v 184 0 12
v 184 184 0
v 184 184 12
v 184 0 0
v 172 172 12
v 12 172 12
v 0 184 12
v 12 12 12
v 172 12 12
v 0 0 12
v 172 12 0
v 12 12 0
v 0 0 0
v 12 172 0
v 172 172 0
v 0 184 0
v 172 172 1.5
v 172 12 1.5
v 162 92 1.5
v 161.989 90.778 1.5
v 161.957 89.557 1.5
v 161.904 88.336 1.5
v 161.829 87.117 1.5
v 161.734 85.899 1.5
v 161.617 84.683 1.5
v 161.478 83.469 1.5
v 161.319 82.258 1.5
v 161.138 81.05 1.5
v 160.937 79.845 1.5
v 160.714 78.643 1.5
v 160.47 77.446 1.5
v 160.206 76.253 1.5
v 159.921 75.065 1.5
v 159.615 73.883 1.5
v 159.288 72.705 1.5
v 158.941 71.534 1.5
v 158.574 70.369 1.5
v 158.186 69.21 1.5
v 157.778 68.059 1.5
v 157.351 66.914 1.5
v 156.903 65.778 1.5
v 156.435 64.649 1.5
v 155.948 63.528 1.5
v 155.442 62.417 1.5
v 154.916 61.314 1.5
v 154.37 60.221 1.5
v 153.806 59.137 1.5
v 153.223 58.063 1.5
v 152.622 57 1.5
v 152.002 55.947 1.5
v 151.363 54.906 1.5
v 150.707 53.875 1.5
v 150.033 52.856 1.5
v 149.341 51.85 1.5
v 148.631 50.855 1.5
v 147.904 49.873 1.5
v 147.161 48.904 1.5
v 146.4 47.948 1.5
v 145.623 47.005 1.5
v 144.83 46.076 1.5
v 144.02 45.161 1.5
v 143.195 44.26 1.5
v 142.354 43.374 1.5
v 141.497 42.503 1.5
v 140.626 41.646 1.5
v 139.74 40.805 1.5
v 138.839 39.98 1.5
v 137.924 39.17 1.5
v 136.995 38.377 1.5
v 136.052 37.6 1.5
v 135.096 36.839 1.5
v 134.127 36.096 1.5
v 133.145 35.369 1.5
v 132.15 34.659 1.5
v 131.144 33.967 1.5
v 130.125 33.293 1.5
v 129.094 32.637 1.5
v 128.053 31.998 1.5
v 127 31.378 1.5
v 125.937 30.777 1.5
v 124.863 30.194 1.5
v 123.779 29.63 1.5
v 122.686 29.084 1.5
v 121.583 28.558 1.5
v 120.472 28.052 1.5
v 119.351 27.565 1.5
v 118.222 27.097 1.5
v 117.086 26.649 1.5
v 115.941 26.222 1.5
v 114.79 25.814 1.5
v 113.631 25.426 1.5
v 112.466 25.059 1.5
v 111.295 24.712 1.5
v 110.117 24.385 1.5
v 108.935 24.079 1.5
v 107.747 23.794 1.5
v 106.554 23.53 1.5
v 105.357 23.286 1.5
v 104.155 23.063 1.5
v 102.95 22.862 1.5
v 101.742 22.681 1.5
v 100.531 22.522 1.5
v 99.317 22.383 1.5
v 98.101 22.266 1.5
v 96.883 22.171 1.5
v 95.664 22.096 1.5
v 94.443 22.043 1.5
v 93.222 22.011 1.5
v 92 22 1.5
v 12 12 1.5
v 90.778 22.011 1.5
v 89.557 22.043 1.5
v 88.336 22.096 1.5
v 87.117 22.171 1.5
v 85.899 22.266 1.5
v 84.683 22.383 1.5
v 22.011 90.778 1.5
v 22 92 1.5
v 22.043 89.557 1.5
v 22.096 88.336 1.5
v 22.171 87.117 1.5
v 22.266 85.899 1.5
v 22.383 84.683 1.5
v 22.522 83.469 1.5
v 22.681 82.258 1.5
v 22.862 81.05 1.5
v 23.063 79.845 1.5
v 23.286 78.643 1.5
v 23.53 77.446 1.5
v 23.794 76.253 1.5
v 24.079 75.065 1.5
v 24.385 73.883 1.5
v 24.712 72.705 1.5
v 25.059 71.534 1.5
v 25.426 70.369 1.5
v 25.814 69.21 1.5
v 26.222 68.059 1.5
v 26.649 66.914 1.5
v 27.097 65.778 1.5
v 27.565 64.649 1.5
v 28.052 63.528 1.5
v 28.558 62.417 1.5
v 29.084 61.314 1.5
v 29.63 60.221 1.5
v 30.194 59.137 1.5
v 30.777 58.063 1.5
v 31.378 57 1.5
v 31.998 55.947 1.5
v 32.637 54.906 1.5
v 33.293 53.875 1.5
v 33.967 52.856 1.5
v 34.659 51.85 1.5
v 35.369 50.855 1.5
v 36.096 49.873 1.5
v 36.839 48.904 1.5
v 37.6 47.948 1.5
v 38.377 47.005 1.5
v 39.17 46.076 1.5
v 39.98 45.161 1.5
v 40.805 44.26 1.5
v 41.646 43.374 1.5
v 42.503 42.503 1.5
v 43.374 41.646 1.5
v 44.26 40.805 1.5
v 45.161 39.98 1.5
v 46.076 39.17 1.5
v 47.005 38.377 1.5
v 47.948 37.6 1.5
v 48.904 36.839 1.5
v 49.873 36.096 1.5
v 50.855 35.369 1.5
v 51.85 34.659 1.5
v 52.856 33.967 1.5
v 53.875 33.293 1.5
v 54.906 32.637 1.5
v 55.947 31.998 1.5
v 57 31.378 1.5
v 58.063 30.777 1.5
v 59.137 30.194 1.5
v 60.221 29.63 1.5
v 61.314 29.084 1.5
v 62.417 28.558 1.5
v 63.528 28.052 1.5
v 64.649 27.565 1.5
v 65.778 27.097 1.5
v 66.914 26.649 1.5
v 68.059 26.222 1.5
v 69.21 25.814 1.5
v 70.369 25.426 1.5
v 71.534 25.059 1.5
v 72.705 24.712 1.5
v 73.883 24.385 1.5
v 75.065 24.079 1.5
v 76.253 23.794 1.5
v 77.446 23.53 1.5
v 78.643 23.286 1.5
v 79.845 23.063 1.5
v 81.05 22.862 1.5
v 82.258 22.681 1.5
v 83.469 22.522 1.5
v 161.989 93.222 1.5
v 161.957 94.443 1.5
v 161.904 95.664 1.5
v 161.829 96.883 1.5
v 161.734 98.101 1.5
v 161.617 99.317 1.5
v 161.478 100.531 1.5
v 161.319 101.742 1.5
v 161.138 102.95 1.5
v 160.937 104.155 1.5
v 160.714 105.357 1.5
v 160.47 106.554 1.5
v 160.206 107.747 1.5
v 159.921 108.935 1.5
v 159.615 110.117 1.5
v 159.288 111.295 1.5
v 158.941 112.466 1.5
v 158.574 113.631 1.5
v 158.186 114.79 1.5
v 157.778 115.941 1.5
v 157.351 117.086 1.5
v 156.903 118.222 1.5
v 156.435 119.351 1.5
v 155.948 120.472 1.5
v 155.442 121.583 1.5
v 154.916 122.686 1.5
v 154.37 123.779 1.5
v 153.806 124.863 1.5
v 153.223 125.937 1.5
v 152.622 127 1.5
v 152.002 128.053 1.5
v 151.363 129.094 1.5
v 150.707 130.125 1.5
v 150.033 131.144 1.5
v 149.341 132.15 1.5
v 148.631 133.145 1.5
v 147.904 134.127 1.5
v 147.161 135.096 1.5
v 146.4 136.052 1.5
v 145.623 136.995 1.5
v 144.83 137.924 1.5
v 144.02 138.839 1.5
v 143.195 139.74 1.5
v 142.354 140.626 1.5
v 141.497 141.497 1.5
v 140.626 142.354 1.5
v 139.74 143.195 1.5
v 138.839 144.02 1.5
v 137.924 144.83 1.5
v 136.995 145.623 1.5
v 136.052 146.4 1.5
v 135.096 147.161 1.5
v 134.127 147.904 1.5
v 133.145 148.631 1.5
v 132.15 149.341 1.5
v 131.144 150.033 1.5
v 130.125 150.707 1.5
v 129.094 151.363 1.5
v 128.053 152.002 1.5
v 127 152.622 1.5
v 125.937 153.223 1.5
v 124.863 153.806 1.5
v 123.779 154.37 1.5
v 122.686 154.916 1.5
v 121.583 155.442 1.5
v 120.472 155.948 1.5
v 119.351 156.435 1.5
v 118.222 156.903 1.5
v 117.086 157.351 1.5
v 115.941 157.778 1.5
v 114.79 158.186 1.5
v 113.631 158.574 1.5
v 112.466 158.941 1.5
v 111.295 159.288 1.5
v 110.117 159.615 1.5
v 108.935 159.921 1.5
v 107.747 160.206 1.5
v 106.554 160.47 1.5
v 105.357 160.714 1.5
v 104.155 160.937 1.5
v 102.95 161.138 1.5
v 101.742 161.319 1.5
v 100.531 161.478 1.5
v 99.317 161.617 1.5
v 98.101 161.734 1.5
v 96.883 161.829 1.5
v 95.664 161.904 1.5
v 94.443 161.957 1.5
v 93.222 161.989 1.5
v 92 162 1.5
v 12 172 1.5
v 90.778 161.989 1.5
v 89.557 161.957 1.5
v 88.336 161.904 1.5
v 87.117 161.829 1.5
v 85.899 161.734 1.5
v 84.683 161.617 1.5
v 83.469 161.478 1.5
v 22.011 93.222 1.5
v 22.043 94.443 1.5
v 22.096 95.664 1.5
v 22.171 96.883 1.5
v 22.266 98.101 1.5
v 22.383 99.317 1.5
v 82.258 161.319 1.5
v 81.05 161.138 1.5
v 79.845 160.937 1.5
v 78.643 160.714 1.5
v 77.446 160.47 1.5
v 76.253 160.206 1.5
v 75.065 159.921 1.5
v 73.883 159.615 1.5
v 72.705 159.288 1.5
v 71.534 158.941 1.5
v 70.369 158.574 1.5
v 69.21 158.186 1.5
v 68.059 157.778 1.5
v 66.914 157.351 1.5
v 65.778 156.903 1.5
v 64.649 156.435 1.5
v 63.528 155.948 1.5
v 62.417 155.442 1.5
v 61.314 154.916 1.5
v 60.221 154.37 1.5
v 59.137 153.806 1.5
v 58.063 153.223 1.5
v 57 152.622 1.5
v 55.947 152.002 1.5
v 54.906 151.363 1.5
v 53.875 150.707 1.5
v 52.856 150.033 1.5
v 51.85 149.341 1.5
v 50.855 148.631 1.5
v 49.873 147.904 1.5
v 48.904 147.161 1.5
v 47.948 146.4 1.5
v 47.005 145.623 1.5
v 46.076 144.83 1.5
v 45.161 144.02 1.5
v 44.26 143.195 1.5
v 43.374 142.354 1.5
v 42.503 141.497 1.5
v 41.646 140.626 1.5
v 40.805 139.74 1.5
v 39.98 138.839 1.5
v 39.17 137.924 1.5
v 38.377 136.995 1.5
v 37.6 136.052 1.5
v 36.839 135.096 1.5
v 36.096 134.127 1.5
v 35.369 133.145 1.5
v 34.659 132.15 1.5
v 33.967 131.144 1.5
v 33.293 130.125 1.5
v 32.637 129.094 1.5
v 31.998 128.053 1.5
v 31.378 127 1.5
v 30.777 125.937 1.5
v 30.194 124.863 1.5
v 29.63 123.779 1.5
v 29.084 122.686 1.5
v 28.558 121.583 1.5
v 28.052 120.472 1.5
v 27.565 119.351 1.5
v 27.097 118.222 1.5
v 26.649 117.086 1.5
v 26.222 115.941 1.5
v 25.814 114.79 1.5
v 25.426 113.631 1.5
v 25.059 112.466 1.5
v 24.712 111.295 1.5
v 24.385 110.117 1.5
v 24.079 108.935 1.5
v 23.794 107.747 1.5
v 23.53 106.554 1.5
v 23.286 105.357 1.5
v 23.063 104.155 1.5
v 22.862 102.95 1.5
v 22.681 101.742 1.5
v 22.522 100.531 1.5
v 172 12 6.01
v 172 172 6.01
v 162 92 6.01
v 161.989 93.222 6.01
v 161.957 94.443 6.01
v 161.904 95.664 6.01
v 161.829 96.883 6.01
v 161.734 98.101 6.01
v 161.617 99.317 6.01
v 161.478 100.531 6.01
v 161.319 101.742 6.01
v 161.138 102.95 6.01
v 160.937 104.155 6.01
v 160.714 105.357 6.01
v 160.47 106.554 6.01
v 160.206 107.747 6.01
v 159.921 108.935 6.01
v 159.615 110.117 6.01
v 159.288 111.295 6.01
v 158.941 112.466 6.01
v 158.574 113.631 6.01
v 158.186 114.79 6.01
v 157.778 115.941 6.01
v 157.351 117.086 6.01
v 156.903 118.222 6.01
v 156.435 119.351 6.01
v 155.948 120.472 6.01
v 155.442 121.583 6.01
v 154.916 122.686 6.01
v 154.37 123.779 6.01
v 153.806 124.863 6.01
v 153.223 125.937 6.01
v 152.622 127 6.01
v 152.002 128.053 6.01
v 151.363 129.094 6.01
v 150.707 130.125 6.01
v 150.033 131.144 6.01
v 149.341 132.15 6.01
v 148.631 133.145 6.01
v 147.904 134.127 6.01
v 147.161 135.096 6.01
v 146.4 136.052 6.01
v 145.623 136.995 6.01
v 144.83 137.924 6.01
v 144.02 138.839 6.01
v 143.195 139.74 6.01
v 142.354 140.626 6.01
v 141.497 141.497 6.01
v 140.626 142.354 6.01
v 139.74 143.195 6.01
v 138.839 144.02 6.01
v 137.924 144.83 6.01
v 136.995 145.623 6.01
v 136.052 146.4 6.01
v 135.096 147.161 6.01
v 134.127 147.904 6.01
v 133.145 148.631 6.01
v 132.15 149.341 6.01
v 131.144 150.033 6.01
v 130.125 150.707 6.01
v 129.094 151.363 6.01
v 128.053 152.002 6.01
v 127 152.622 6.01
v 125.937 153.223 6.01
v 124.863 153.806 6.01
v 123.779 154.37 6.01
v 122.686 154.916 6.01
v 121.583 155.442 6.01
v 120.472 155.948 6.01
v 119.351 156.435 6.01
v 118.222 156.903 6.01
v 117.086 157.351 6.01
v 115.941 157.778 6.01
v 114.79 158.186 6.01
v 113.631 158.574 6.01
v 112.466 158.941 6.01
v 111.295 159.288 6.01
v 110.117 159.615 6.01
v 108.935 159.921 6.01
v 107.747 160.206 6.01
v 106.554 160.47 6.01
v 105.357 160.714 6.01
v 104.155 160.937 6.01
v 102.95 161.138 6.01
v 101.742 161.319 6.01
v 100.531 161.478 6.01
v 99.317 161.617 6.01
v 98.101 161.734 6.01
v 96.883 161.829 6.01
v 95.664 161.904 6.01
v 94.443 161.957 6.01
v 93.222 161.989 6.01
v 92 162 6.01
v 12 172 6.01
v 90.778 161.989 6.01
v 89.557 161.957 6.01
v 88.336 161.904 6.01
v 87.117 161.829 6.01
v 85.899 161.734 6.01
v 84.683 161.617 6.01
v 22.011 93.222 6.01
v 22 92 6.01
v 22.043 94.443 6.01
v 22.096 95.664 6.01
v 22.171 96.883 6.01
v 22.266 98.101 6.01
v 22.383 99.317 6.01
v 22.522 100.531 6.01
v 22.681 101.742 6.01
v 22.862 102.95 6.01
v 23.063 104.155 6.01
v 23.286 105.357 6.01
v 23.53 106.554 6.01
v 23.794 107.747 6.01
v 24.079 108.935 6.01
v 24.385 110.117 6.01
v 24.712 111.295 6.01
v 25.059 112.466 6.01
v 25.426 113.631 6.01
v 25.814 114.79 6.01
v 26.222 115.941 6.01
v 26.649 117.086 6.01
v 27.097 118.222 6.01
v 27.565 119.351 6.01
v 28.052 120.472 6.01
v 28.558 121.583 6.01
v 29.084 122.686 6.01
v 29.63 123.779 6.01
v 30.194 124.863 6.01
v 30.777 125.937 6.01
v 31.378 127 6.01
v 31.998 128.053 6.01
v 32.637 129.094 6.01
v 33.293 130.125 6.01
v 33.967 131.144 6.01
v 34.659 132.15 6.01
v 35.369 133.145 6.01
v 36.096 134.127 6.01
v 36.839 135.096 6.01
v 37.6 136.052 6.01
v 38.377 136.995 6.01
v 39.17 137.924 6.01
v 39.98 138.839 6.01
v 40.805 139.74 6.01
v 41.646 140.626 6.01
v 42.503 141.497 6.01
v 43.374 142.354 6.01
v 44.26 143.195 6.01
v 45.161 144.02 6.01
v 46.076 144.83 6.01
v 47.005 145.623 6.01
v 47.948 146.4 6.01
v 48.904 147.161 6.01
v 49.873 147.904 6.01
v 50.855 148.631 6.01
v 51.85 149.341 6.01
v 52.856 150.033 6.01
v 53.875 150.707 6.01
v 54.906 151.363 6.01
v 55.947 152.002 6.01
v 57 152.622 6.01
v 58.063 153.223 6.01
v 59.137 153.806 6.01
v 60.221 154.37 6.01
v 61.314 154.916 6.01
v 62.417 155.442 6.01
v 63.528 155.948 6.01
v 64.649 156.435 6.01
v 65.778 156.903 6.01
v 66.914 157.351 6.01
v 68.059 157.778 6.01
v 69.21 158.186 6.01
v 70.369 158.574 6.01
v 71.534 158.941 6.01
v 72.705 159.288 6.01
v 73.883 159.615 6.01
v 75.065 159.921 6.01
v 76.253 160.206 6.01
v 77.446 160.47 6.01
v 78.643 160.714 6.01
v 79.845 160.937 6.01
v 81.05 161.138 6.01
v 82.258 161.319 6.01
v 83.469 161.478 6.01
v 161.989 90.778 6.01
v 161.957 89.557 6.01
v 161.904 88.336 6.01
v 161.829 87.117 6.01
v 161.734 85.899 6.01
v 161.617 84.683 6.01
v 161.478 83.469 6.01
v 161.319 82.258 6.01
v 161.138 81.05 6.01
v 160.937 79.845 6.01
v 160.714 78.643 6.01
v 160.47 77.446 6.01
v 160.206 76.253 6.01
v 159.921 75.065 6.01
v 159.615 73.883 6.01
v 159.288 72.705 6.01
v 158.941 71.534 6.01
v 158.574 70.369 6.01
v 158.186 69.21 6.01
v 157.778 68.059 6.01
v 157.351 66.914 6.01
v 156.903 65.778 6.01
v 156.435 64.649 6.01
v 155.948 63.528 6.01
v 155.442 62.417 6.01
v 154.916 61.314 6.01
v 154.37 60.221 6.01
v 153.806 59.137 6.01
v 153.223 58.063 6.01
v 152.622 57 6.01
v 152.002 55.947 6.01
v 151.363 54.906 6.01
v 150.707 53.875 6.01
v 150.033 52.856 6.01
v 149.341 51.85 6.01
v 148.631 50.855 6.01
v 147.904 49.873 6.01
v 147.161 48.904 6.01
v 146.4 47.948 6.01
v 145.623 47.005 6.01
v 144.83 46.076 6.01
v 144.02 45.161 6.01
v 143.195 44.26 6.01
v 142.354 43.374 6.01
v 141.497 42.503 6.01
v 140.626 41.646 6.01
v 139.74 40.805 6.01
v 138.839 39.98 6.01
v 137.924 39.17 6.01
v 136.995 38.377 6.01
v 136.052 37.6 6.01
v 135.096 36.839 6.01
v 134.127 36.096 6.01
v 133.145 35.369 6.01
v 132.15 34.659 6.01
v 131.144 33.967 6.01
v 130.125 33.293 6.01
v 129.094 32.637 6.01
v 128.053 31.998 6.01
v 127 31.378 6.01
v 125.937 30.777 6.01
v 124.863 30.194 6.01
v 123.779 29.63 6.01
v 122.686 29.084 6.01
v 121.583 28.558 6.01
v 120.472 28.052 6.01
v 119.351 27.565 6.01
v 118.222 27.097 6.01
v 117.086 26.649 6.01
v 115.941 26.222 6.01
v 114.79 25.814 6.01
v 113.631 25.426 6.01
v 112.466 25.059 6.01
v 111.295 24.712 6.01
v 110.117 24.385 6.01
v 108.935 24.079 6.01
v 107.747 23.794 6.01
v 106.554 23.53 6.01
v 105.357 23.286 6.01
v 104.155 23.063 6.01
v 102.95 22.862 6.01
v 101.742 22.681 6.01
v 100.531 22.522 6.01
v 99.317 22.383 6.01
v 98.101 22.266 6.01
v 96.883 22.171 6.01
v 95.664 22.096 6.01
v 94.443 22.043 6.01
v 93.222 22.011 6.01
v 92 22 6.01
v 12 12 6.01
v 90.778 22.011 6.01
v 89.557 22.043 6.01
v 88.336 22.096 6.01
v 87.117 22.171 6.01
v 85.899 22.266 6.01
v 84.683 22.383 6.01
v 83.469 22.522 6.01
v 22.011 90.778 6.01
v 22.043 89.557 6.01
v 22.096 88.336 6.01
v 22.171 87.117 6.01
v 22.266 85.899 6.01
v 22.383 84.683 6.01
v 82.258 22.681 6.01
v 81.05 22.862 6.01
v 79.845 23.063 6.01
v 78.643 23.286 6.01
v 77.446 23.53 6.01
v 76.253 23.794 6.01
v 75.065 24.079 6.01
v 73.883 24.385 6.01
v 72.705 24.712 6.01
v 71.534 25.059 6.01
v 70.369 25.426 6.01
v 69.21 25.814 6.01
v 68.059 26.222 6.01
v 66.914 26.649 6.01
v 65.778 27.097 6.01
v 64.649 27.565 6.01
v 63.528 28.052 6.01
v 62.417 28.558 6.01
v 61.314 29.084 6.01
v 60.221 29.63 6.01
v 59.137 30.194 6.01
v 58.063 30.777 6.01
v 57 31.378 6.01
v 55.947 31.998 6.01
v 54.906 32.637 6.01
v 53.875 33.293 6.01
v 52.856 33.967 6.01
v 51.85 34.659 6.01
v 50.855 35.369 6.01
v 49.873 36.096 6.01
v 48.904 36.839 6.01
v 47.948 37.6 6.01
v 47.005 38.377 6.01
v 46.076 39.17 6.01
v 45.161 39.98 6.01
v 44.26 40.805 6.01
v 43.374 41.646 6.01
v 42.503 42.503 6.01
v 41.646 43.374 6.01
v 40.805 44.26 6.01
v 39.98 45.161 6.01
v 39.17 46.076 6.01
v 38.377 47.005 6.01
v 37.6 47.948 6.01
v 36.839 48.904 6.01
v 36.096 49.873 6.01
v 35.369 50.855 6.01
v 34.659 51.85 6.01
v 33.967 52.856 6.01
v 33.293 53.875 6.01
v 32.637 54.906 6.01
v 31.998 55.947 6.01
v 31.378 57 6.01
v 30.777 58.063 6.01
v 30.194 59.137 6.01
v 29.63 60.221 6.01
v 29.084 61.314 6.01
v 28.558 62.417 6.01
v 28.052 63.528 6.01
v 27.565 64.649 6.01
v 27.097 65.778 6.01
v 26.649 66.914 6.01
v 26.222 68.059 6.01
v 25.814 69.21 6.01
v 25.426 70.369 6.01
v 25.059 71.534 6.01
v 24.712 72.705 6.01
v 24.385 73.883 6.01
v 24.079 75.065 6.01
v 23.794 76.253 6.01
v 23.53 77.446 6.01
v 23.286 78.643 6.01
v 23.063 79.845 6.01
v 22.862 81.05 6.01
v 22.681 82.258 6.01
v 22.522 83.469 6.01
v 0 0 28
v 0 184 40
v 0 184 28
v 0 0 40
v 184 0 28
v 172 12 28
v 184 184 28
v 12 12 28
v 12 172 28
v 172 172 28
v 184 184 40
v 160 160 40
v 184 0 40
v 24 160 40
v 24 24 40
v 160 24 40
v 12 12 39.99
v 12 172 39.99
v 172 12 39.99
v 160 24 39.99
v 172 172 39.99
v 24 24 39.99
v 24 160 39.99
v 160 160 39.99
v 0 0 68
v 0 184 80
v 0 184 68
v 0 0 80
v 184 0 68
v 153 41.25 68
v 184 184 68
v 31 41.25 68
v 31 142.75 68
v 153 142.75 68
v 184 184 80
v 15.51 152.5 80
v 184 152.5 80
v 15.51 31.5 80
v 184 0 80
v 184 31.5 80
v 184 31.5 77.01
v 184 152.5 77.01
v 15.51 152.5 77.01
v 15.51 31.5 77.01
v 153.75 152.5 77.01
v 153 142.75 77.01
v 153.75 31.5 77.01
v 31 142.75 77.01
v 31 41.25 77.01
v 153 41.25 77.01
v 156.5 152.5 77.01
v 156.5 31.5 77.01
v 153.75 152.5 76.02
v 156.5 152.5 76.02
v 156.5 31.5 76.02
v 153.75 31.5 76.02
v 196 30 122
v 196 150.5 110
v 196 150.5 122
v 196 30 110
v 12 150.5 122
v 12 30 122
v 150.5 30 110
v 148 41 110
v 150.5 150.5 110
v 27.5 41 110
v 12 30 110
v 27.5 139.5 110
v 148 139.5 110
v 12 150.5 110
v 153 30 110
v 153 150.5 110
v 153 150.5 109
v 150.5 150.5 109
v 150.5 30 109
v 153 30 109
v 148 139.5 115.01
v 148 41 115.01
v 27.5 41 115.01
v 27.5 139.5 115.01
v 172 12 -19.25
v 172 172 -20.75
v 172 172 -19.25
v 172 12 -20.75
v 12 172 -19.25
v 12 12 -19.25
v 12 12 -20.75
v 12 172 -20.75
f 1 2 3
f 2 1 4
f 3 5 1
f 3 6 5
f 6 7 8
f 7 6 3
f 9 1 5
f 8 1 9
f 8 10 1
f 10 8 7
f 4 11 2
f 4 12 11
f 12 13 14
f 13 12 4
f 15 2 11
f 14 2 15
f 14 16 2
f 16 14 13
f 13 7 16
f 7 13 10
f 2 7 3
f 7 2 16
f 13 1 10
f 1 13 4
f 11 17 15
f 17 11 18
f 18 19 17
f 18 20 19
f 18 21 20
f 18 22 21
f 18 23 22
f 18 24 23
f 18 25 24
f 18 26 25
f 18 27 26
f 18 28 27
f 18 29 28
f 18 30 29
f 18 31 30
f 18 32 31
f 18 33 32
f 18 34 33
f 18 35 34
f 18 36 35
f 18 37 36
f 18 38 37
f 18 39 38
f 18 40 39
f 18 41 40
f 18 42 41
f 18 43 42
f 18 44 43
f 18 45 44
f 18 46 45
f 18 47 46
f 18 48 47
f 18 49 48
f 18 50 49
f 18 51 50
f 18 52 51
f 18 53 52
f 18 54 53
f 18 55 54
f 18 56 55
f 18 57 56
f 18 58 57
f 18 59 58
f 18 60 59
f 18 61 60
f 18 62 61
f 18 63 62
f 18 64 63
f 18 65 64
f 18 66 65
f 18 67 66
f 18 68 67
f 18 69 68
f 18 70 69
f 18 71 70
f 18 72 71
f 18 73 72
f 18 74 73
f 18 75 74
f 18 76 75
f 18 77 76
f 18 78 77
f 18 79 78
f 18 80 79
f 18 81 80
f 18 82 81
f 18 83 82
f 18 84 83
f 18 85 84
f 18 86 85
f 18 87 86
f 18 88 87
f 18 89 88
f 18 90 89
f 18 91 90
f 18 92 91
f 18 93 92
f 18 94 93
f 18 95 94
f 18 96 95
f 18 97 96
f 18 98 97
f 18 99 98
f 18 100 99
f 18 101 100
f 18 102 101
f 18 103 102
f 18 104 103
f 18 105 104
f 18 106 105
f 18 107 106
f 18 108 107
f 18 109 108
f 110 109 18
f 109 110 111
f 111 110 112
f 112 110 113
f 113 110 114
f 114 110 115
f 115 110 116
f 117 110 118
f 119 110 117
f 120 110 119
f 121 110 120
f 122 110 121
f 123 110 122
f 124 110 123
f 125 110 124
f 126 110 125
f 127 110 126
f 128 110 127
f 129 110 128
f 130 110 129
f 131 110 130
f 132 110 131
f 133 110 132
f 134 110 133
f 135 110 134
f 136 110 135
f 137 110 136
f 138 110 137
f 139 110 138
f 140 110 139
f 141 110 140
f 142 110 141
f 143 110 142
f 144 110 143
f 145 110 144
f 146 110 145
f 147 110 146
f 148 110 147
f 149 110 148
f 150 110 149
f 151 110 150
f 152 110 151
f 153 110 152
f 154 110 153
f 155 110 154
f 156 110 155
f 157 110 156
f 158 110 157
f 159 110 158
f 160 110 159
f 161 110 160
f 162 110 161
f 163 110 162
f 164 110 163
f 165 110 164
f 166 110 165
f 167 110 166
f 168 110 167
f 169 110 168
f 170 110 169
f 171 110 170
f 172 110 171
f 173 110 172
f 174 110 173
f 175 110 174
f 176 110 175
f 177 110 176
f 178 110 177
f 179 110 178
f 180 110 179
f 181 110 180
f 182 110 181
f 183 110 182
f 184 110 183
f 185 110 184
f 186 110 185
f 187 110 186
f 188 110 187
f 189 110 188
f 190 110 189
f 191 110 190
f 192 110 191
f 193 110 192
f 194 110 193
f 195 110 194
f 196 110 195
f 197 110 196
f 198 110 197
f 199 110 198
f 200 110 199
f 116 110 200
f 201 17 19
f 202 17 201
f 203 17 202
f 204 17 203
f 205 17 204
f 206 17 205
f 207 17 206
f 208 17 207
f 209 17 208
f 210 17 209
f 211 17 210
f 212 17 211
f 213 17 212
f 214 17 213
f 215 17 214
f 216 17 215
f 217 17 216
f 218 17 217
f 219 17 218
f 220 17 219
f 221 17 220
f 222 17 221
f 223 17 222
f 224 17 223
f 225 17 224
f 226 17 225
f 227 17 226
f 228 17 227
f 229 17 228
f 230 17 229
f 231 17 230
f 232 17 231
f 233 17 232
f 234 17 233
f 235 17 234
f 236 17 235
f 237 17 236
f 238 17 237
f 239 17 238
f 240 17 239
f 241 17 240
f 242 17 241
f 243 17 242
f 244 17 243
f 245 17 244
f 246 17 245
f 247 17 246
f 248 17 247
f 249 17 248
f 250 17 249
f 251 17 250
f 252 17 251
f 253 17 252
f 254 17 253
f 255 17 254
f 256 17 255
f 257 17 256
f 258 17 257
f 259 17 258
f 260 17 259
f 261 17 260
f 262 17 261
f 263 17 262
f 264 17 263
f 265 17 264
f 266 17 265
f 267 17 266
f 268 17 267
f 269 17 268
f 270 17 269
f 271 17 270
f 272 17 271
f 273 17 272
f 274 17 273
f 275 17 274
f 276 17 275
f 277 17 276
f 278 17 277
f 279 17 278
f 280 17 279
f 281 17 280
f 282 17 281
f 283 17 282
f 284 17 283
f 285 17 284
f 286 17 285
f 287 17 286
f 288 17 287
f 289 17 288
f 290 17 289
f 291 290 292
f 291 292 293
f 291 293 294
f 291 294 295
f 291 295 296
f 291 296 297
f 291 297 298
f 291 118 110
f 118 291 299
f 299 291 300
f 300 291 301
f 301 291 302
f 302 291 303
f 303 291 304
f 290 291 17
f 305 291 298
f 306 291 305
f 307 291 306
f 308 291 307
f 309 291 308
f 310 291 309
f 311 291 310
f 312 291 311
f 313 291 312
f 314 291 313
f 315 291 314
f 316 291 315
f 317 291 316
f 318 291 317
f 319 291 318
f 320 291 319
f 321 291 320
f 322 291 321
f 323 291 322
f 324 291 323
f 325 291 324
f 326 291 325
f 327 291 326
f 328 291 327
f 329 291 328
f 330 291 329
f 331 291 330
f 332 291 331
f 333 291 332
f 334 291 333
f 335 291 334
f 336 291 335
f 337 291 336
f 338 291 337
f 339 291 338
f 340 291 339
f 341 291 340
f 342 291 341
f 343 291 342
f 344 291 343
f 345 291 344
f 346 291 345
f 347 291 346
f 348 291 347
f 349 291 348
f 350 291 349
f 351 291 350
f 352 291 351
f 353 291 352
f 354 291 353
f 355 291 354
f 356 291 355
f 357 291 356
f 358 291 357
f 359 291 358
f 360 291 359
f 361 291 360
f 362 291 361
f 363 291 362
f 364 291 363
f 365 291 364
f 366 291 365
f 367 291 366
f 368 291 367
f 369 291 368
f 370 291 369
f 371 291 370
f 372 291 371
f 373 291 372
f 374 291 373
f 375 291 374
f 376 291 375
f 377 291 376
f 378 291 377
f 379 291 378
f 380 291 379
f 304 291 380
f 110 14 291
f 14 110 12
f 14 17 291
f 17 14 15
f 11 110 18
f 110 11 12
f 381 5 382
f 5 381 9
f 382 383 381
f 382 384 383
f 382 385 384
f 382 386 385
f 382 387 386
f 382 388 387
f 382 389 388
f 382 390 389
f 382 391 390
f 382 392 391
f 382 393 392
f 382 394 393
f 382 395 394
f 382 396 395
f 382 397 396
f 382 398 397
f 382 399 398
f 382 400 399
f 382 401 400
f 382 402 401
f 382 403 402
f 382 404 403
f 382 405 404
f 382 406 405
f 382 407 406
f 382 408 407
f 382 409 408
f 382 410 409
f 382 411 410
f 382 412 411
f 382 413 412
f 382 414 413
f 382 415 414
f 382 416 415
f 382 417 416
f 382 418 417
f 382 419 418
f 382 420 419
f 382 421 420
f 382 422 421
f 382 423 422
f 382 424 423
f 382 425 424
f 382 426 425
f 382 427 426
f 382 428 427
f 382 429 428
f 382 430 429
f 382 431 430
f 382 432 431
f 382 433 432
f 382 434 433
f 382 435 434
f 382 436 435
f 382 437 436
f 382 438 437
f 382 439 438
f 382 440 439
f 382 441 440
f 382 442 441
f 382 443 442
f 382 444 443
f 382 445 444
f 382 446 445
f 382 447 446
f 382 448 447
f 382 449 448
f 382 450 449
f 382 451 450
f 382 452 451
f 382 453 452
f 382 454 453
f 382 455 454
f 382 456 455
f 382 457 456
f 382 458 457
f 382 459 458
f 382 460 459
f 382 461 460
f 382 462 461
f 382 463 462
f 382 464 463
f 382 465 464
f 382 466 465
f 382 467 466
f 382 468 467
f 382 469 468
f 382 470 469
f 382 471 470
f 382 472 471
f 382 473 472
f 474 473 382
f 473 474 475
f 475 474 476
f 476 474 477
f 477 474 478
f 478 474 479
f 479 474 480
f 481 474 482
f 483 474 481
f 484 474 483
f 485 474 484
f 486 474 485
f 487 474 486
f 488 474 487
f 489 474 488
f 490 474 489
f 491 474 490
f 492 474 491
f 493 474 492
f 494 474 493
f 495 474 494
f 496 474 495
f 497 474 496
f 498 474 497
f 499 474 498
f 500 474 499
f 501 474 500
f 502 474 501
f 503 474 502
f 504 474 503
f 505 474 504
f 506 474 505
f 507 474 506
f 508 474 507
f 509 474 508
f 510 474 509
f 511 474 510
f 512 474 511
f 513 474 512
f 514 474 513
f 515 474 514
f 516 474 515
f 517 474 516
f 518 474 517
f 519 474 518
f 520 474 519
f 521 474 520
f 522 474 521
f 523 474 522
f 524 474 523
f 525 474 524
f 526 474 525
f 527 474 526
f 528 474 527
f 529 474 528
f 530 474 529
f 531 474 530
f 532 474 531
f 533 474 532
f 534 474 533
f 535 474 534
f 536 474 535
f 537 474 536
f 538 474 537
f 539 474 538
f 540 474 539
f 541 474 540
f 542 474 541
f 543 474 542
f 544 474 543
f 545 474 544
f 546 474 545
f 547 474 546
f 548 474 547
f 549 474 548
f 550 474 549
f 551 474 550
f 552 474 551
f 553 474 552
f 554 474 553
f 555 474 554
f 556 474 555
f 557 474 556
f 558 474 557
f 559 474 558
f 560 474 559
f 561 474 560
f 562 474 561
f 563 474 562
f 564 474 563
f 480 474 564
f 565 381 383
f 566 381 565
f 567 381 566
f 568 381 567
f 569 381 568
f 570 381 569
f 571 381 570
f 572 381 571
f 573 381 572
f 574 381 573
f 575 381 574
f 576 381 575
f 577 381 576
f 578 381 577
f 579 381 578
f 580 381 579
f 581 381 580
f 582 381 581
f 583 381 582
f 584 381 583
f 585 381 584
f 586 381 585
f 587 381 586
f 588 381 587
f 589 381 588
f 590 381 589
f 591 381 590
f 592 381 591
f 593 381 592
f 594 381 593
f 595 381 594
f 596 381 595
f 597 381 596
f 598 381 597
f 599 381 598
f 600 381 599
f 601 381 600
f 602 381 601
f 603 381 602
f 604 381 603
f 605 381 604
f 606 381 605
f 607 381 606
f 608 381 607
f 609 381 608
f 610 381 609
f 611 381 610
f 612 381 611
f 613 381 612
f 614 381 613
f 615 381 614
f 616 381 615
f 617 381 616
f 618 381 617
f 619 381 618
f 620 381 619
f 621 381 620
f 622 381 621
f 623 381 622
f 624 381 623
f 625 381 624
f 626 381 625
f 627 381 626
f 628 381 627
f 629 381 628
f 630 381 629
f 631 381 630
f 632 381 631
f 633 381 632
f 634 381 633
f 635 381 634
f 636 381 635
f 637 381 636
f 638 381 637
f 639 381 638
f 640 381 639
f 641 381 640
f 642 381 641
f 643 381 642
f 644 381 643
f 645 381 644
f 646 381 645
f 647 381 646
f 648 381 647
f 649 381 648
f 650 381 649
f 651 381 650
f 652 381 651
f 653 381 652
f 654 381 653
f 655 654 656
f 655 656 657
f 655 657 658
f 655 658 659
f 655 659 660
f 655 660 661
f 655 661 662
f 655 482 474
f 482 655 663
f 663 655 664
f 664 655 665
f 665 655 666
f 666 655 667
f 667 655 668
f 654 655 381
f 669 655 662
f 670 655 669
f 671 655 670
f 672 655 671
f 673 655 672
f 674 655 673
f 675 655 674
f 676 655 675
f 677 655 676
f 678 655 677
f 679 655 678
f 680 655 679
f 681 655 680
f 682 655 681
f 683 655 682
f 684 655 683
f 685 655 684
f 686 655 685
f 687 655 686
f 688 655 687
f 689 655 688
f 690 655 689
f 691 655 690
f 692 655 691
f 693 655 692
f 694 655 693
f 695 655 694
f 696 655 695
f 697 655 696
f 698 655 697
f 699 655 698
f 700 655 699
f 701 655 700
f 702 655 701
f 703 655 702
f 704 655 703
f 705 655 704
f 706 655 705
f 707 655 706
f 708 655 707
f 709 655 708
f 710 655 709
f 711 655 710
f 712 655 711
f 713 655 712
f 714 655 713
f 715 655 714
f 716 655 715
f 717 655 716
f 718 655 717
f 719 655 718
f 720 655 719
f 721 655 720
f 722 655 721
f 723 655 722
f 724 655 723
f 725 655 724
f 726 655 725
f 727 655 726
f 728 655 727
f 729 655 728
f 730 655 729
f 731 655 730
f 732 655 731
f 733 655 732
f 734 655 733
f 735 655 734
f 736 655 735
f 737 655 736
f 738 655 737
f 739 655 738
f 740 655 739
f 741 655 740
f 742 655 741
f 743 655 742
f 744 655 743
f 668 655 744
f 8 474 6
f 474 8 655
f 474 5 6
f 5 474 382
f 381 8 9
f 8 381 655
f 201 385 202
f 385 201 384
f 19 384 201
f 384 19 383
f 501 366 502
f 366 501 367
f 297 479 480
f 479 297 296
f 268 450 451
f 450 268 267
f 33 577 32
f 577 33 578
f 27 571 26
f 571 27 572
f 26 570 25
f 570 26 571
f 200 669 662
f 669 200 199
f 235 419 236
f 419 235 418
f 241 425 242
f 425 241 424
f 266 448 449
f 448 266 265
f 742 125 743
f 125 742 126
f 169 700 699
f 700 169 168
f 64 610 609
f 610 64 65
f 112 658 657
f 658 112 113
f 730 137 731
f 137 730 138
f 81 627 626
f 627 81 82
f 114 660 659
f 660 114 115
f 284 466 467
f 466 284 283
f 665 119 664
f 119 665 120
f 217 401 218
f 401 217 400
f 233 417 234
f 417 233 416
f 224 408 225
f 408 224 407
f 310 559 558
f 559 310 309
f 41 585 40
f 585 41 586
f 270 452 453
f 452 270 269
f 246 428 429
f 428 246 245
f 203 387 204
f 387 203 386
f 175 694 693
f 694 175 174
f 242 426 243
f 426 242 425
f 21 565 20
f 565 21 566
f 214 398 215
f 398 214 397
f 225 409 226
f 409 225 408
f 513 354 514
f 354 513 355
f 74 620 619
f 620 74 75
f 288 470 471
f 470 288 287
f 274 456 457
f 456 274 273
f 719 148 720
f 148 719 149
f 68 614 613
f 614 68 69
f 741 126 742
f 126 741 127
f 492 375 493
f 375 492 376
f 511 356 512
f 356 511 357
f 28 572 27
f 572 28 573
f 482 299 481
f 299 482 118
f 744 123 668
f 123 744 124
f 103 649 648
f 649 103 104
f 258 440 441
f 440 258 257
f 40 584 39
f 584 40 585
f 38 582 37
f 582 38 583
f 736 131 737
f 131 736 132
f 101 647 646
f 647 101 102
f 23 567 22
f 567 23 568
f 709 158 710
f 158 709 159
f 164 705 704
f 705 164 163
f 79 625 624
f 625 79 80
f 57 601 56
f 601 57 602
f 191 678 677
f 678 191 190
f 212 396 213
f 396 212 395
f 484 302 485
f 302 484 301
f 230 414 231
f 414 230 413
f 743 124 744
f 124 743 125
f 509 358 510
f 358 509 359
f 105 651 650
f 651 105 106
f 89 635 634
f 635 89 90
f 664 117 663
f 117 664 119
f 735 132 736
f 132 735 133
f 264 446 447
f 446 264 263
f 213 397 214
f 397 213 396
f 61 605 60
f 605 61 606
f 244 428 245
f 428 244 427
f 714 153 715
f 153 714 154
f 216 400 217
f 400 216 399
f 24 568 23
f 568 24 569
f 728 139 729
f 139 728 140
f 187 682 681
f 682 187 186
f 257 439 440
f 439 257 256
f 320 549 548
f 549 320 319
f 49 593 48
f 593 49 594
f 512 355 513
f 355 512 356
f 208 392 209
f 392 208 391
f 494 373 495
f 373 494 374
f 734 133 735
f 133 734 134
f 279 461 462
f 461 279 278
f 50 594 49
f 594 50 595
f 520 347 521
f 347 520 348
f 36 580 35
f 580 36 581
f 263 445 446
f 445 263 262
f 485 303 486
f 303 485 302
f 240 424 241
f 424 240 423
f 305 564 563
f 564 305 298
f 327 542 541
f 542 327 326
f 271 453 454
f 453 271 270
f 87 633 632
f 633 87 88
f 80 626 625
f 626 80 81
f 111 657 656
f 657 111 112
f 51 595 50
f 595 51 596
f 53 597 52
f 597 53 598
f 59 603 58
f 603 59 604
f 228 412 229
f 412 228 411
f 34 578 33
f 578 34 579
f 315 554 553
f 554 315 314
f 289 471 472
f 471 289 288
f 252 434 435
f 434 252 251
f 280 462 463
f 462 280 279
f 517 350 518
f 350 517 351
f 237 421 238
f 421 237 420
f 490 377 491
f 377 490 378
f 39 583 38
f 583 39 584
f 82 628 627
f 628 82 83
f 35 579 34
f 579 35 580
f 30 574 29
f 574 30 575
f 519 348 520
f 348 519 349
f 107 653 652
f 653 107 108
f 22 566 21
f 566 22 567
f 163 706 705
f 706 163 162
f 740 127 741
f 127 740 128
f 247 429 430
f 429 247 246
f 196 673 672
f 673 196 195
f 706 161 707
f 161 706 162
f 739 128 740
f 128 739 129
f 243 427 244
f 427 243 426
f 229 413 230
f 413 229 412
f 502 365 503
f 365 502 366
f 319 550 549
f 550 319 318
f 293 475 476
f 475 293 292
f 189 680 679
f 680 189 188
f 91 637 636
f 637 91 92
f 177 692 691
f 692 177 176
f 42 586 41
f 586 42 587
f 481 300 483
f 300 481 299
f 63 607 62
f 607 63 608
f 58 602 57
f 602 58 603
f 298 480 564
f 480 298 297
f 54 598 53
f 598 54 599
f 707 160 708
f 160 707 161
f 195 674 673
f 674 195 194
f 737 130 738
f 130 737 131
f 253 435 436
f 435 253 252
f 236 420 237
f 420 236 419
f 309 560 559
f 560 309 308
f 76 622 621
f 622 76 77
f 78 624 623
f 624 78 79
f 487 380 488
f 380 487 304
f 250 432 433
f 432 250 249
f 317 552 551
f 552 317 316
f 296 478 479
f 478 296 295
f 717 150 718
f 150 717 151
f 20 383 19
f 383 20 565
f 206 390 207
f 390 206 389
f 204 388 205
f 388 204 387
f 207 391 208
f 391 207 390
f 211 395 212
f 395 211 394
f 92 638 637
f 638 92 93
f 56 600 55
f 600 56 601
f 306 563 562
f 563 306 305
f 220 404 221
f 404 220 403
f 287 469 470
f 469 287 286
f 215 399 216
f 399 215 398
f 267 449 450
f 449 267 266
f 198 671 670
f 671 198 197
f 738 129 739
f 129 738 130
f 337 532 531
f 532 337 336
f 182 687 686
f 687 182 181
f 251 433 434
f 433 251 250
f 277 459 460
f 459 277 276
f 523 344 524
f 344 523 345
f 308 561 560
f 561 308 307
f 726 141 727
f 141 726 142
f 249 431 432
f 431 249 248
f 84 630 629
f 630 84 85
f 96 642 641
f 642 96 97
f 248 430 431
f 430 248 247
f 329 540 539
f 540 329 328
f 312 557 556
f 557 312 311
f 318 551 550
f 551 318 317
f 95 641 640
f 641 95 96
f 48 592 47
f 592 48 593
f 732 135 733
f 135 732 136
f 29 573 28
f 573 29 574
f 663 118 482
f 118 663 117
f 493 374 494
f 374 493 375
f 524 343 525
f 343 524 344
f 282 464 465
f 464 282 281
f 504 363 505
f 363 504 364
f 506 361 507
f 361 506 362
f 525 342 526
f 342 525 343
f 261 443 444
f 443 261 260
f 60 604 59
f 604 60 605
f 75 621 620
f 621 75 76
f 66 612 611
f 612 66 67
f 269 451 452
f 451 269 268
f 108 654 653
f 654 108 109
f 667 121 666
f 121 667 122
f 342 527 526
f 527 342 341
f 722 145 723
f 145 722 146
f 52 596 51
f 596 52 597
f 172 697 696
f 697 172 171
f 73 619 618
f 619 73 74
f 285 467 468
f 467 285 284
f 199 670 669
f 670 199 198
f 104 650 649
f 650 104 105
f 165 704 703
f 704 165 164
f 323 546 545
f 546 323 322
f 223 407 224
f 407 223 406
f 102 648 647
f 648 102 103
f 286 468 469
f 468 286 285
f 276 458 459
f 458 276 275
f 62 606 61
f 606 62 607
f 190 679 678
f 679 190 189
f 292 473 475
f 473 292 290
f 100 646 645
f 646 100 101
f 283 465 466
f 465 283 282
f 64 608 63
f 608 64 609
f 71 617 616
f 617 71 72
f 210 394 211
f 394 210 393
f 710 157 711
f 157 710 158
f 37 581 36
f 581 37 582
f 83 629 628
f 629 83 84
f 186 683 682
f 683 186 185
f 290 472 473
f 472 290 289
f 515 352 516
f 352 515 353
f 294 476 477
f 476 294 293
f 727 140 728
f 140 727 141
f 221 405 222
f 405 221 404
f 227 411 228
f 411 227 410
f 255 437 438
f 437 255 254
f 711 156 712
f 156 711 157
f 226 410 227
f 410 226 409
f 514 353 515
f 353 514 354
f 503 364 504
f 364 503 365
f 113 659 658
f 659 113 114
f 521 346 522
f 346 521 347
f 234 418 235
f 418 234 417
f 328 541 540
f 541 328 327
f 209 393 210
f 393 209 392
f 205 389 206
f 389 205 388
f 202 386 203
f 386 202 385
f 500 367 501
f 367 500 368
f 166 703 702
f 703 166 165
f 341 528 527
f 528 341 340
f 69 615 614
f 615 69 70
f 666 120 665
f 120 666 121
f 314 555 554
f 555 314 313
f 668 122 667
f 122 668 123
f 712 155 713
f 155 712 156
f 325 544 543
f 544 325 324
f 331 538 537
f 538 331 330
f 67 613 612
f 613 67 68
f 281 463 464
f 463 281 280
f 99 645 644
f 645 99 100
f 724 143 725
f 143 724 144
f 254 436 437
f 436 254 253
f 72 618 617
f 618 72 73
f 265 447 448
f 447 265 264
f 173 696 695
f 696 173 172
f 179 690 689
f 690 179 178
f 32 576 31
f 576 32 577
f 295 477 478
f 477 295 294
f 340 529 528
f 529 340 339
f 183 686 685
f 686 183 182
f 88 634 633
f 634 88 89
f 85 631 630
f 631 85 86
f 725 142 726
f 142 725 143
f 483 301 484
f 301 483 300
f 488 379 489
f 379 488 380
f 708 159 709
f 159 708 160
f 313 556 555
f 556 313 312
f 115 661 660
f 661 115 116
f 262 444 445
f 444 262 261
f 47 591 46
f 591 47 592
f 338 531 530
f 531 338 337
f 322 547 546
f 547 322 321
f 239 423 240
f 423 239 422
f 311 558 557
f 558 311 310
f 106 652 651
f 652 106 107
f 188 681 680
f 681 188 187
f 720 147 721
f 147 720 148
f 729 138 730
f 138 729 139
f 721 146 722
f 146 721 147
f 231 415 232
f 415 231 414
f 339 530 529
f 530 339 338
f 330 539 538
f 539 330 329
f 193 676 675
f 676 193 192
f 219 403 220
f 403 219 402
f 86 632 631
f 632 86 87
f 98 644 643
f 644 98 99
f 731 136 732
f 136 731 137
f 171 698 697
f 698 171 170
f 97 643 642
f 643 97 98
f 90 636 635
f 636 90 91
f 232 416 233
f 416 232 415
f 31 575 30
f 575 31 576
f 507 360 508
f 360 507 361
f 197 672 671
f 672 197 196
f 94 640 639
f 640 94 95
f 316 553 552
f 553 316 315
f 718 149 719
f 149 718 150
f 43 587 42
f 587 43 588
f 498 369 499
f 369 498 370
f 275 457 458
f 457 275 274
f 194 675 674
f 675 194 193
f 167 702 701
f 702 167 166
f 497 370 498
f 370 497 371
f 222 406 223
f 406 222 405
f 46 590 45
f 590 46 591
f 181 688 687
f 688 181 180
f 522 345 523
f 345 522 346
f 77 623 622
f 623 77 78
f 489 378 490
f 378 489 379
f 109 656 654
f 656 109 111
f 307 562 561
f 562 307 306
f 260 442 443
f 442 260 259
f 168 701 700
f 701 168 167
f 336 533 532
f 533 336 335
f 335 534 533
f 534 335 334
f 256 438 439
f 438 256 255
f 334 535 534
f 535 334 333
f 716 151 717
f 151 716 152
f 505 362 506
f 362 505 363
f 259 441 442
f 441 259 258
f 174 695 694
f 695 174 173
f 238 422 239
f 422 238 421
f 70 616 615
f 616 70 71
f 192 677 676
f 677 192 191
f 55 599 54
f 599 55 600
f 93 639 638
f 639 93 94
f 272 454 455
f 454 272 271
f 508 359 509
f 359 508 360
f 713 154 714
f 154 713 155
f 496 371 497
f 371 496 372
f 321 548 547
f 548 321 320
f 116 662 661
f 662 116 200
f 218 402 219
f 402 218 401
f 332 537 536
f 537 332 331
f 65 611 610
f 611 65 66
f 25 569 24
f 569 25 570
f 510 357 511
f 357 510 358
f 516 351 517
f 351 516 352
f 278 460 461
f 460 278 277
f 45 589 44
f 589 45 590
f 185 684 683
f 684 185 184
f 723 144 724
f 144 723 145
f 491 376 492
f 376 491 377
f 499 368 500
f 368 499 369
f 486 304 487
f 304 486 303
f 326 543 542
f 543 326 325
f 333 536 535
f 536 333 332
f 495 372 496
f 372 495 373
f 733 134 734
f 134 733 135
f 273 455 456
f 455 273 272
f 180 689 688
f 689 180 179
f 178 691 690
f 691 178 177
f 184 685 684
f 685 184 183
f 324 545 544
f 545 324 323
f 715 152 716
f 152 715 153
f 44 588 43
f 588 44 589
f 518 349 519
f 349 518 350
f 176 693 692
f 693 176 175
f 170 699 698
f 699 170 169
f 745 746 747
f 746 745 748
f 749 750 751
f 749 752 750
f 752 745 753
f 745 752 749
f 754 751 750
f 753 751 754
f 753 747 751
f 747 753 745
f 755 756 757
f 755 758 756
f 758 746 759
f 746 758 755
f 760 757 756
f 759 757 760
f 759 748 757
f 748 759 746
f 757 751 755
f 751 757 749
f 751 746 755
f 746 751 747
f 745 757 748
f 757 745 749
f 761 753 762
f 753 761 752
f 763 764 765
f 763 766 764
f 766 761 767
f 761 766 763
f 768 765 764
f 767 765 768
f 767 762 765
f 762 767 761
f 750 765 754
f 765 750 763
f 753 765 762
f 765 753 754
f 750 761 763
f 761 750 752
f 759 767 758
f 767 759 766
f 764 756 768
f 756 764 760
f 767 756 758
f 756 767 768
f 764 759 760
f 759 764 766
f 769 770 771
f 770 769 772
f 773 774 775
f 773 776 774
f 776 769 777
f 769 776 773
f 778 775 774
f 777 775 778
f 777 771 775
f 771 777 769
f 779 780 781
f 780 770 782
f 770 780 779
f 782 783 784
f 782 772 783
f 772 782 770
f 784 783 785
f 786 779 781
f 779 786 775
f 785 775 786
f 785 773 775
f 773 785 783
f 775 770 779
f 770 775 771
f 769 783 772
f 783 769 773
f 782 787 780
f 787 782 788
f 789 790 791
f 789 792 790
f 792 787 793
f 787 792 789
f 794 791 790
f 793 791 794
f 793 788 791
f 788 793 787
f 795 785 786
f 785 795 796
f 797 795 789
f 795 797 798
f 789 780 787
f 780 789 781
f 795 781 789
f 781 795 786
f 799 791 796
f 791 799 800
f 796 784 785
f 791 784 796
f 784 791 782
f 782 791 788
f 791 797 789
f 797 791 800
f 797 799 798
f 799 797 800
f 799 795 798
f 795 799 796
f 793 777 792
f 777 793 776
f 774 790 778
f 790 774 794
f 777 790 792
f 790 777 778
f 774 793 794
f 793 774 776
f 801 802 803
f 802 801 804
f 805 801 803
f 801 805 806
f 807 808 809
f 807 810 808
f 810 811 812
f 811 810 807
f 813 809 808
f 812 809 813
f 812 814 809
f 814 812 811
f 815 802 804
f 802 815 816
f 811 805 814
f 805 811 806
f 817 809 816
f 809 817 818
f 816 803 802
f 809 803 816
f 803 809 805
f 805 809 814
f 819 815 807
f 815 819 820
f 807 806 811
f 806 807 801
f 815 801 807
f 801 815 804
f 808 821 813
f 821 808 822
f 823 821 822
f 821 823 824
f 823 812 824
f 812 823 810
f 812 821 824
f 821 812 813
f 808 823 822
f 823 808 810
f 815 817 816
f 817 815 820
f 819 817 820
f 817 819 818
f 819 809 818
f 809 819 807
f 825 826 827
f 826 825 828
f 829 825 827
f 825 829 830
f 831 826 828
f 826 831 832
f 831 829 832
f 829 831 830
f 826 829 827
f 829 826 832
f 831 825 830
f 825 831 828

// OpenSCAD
// file: film-holder.scad
$fa = 1;
$fs = 0.04;

e = 0.01;

/* _________________________
 * |          B=11                       
 * |   _________________
 * |   |                | ^
 * |   |                | ^
 * | A |   121x98       | ^
 * |   |                | ^
 * |   |________________| ^
 * _____________________
 *
 * A = 15.5mm
 * ^ = 141mm
 */

module film_holder(
    holder_height,
    holder_width,
    film_gate_height,
    film_gate_width
) {
    union() {
        difference() {
            // holder body
            cube([holder_width, holder_height, 12]);

            // film gate
            translate([15.5, 11, -e])
                cube([film_gate_width, film_gate_height, 5 + (2* e)]);
        }
        // indexing ridge
        translate([138.5, 0, -1])
            cube([2.5, holder_height, 1]);
    }
}

film_holder(
    holder_height=120.5,
    holder_width=184,
    film_gate_height=98.5,
    film_gate_width=120.5
);
// file: film-holder-seat.scad
$fa = 1;
$fs = 0.04;

e = 0.01;


module film_holder_seat(
    external_width,
    external_depth,
    external_height,
    film_holder_width,
    film_holder_depth,
    film_holder_height
) {
    rabbet_width = film_holder_width;
    rabbet_depth = film_holder_depth + 10;
    rabbet_height = 4;

    difference() {
        // main outer dimension of the holder seat
        cube([external_width, external_depth, 20]);

        // cut away the slot that the film holder will rest in
        translate([-e, (external_depth - film_holder_depth) / 2, -e])
            cube([film_holder_width, film_holder_depth, external_height + e]);

        // cut away a rabbet around the film holder for springs
        translate([-e, (external_depth - rabbet_depth) / 2, film_holder_height])
            cube([rabbet_width, rabbet_depth, 20]);
    }
}

film_holder_seat(
    external_width = 170,
    external_depth = 170,
    external_height = 40,
    film_holder_width = 160,
    film_holder_depth = 140,
    film_holder_height = 10
);
// file: spring-back.scad
$fa = 1;
$fs = 0.04;

e = 0.01;

// 4x5 Spring back

// 25mm == 1 inch
// 12mm == 1/2 inch
// 101.6mm = 4 inches
// 127mm == 5 inches

module spring_back(
    height,
    depth,
    margin,
    film_holder_height,
    film_gate_height,
    film_gate_width,
) {
    difference() {
        // frame
        cube([height, height, depth]);

        // film holder cut out
        translate([0-e, (height - film_holder_height) / 2, -e])
            cube([height - 15.5, film_holder_height, depth/4]);

        // indexing ridge
        translate([27.5, (height - film_holder_height) / 2, depth/4 - (2 * e)])
            cube([2.75, film_holder_height, 1]);
        
        // film gate hole
        translate([(height - (film_gate_width + 1)) / 2, (height - (film_gate_height + 3)) / 2, -e])
            cube([film_gate_width + 1, film_gate_height + 3, depth + (2 * e)]);
    }


}

spring_back(
    height = 184,
    depth = 12,
    margin=12,
    film_holder_height=121,
    film_gate_height=97,
    film_gate_width=121
);
// file: lens-board.scad
$fa = 1;
$fs = 0.04;
e = 0.01;

module lens_board(height, depth) {
    cube([height, height, depth], center=true);
}


lens_board(160, 1.5);
// file: frame-back.scad
$fa = 1;
$fs = 0.04;

e = 0.01;

// 25mm == 1 inch
// 12mm = 1/2 inch

module frame_back(
    height,
    depth,
    margin,
    baffle_cut_depth,
) {
    difference() {
        // outer frame
        cube([height, height, depth]);

        // cut out for front baffles attachment
        translate([margin, margin, depth-baffle_cut_depth+e])
            cube([height - (2 * margin), height - (2 * margin), baffle_cut_depth + e]);

        // Cut out for light
        translate([2 * margin, 2 * margin, -e])
            cube([height - (4 * margin), height - (4 * margin), depth + e]);
    }
}

frame_back(
    height = 184,
    depth = 12,
    margin=12,
    baffle_cut_depth=12
);
// file: frame-front.scad
$fa = 1;
$fs = 0.04;

e = 0.01;

module frame_front(
    height,
    depth,
    margin,
    hole_radius,
    lens_board_depth,
    baffle_cut_depth,
) {
    difference() {
        // outer frame
        cube([height, height, depth]);

        // cut for lens board
        translate([margin, margin, -e])
            cube([height - (2 * margin), height- (2 * margin), lens_board_depth + e]);

        // cut out for rear baffles attachment
        translate([margin, margin, depth-baffle_cut_depth+e])
            cube([height - (2 * margin), height- (2 * margin), baffle_cut_depth + e]);

        // cut out for lens
        translate([height/2, height/2, 0])
            cylinder(h=depth + e, r=hole_radius);
    }
}

frame_front(
    height = 184,
    depth = 12,
    margin=12,
    hole_radius=70,
    lens_board_depth=1.5,
    baffle_cut_depth=6
);
// main file
$fa = 1;
$fs = 0.04;

e = 0.01;

use <frame-front.scad>
use <frame-back.scad>
use <lens-board.scad>
use <spring-back.scad>
use <film-holder-seat.scad>
use <film-holder.scad>

module camera () {
    lens_board_depth=1.5;

    translate([(160/2) + 12, (160/2) + 12, -20])
        lens_board(160, lens_board_depth);

    frame_front(
        height = 184,
        depth = 12,
        margin=12,
        hole_radius=70,
        lens_board_depth=lens_board_depth,
        baffle_cut_depth=6
    );

    translate([184, 0, 40])
    rotate([0, 180, 0])
    color("green")
        frame_back(
            height = 184,
            depth = 12,
            margin=12,
            baffle_cut_depth=12
        );


    translate([184, 0, 80])
    rotate([0, 180, 0])
    color("blue")
        spring_back(
            height = 184,
            depth = 12,
            margin=12,
            film_holder_height=120.5 + 0.5,
            film_gate_height=98.5,
            film_gate_width=120.5 + 0.5
        );

    translate([12, 30, 110])
    color("red")
        film_holder(
            holder_height=120.5,
            holder_width=184,
            film_gate_height=98.5,
            film_gate_width=120.5
        );
}

camera();
